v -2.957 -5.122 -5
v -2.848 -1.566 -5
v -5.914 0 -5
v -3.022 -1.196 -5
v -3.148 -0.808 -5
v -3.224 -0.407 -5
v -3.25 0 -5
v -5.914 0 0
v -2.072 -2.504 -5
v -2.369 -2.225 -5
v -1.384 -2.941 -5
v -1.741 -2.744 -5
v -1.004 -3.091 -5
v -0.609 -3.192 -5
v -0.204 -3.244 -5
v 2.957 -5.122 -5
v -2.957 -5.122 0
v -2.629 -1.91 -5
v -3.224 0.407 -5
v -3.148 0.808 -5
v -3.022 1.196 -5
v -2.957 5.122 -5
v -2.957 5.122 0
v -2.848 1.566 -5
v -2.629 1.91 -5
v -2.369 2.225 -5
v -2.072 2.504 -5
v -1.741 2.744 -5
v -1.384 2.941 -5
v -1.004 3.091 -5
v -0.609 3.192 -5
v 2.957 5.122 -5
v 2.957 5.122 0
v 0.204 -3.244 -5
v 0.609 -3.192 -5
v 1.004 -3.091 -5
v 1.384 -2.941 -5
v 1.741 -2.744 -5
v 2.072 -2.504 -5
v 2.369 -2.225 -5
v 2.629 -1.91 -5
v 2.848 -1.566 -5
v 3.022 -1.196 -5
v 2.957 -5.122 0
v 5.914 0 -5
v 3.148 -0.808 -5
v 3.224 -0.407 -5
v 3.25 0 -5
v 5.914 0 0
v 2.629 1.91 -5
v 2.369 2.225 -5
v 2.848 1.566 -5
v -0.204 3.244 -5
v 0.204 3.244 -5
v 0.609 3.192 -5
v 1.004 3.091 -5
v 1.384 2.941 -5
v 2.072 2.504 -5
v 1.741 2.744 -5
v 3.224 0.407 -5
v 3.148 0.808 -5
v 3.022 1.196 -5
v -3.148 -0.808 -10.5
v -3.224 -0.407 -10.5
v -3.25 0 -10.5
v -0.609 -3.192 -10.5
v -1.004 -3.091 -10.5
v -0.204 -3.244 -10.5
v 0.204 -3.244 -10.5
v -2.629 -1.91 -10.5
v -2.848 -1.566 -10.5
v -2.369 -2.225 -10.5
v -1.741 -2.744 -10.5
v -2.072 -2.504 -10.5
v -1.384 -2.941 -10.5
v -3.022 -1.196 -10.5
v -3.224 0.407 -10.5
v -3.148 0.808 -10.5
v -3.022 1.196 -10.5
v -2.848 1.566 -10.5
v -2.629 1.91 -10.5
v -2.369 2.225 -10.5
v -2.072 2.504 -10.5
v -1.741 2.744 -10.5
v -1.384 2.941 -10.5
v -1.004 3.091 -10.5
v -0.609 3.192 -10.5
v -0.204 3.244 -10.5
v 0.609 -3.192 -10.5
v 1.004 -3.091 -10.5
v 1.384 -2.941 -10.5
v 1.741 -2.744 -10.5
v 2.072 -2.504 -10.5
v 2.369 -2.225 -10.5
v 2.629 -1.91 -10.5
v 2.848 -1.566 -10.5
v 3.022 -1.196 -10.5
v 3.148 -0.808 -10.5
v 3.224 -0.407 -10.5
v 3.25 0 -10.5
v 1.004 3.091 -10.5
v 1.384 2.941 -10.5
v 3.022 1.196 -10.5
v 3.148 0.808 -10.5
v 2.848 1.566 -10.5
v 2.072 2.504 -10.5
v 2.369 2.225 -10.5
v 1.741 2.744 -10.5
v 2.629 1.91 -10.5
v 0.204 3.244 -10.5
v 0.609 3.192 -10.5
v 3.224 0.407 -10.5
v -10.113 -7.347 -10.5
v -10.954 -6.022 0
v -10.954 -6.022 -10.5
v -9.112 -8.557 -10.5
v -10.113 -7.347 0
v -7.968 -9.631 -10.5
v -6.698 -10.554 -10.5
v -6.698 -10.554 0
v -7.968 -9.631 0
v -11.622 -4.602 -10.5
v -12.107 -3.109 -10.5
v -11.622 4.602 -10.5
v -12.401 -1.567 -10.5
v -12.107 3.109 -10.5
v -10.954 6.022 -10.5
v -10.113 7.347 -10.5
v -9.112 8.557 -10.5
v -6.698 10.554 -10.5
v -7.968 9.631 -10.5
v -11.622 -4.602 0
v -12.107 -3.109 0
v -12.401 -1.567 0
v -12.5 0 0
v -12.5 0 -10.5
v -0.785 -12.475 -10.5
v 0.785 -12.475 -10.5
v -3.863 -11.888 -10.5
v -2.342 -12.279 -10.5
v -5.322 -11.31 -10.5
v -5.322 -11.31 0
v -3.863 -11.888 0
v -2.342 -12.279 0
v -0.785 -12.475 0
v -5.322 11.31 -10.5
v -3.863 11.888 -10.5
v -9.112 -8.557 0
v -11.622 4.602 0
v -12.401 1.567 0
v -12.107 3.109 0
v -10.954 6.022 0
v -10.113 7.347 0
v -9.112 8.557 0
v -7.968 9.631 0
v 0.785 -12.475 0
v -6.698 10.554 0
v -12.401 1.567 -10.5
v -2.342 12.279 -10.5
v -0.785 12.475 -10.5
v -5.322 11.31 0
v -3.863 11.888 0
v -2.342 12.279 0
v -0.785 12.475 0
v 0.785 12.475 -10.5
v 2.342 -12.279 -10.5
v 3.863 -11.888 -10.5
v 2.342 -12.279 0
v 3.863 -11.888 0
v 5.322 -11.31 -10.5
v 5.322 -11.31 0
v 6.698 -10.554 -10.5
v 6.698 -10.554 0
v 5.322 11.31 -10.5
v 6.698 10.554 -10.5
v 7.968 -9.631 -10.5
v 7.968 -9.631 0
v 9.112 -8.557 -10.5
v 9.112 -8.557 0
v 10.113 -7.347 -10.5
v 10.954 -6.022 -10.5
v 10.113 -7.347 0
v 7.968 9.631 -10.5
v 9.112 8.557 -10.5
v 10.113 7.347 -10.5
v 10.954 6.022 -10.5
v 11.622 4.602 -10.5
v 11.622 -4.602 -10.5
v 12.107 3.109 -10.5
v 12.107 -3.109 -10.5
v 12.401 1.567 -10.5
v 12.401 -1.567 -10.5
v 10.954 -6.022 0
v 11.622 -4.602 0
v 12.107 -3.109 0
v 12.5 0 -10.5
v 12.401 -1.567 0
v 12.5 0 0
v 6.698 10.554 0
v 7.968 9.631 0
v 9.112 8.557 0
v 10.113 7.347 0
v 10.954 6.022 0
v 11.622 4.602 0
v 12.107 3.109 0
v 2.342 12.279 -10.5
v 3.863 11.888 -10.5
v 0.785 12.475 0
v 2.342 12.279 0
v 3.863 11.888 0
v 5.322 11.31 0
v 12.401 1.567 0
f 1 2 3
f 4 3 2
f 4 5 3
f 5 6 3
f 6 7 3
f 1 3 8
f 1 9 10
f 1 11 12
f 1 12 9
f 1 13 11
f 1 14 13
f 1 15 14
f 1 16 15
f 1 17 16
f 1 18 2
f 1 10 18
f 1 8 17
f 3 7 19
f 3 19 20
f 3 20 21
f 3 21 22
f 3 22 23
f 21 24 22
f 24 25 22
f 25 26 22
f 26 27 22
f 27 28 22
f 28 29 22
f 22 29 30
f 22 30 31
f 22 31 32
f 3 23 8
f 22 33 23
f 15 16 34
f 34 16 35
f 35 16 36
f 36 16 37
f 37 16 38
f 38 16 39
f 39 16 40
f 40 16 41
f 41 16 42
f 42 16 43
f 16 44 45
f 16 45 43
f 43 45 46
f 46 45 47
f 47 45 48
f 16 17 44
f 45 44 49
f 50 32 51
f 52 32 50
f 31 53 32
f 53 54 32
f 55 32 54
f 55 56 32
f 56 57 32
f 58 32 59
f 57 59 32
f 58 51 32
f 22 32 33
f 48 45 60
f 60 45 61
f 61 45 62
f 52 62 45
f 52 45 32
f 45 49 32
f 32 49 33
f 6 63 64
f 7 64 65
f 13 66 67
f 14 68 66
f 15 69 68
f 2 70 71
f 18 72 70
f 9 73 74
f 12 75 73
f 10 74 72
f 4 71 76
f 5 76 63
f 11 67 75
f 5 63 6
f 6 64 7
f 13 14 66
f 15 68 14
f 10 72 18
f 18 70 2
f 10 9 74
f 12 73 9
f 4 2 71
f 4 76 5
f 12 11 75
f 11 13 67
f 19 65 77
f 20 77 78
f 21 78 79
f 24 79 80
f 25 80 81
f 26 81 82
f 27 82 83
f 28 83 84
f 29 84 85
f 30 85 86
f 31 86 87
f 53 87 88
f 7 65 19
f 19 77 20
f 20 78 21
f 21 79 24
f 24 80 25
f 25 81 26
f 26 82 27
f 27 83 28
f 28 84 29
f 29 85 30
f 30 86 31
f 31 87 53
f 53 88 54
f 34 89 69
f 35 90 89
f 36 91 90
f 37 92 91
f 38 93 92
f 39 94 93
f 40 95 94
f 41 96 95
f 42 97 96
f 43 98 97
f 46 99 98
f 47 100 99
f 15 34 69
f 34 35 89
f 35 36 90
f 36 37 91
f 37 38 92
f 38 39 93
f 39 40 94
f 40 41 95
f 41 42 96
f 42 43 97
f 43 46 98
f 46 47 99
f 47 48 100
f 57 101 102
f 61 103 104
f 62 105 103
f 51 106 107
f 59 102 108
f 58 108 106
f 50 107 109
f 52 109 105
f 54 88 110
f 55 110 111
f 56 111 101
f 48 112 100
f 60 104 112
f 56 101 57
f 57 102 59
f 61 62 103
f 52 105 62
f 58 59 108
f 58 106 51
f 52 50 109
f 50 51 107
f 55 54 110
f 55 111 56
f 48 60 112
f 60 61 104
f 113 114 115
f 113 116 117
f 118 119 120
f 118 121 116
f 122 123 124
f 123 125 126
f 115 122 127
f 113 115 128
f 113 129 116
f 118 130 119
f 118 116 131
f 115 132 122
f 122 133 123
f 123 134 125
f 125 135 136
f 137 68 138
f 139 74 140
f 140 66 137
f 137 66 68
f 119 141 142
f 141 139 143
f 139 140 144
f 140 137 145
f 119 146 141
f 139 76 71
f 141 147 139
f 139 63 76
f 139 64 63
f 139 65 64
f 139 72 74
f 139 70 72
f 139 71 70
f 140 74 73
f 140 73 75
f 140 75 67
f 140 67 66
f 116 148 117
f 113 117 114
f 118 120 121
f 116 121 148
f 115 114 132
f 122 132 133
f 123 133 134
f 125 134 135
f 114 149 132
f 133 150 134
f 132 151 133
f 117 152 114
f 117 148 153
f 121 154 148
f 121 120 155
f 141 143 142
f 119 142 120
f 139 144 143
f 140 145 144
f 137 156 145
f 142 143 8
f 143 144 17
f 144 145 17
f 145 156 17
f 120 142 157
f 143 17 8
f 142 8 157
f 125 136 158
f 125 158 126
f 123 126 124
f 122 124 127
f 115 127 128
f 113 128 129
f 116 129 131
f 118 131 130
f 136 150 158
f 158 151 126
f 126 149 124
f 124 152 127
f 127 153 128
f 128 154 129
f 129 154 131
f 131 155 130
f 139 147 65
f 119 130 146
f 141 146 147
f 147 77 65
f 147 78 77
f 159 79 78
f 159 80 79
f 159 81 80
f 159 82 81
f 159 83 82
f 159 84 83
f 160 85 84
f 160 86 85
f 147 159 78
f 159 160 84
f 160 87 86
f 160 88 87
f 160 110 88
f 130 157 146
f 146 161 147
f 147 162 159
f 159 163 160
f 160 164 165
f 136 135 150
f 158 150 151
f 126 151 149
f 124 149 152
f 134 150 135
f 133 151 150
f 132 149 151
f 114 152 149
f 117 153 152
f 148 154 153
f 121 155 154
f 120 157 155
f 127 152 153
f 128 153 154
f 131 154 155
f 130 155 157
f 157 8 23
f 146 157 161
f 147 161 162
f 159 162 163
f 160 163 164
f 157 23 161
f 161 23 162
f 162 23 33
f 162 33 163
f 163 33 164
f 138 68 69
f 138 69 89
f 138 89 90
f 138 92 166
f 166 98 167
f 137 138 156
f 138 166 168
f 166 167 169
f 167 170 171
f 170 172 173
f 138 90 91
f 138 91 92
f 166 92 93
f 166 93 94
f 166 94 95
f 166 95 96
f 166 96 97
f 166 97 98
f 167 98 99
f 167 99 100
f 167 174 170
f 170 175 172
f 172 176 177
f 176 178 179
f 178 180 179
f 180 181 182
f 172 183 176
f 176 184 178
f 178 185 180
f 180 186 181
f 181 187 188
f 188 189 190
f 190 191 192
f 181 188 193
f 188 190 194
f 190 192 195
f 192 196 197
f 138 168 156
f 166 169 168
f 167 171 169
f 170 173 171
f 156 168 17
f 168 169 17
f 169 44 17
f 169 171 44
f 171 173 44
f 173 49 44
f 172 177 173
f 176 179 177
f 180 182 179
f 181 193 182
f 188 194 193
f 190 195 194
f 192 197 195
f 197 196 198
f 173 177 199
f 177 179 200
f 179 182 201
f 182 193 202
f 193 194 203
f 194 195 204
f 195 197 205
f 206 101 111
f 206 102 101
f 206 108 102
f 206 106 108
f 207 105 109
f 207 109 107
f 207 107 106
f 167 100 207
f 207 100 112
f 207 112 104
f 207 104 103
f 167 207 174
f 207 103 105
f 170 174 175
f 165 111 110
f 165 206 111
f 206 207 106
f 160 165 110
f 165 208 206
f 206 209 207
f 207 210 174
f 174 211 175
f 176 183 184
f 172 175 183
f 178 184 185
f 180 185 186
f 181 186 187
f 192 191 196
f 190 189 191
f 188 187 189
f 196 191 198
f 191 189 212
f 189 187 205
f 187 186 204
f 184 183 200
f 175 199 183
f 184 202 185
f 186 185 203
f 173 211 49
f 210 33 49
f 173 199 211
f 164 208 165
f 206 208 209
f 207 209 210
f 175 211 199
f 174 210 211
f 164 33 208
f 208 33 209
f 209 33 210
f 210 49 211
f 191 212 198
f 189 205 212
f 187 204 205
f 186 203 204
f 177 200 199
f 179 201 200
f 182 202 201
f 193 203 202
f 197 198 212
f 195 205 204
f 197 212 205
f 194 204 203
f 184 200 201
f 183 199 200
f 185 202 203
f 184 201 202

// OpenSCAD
$fn = 50;

difference() {
	union() {
		translate(v = [0, 0, -10.5]) {
			cylinder(h = 10.5, r = 12.5);
		}
	}
	union() {
		translate(v = [0, 0, 0]) {
			rotate(a = [0, 0, 0]) {
				difference() {
					union() {
						translate(v = [0, 0, -5]) {
							linear_extrude(height = 5) {
								polygon(points = [[5.914249999999999, 0.0], [2.957125, 5.1218907443321156], [-2.9571249999999982, 5.1218907443321156], [-5.914249999999999, 7.242867331857232e-16], [-2.9571250000000022, -5.121890744332115], [2.9571249999999956, -5.121890744332118]]);
							}
						}
					}
					union();
				}
			}
		}
		#translate(v = [0, 0, -100.0]) {
			cylinder(h = 200, r = 3.25);
		}
	}
}
